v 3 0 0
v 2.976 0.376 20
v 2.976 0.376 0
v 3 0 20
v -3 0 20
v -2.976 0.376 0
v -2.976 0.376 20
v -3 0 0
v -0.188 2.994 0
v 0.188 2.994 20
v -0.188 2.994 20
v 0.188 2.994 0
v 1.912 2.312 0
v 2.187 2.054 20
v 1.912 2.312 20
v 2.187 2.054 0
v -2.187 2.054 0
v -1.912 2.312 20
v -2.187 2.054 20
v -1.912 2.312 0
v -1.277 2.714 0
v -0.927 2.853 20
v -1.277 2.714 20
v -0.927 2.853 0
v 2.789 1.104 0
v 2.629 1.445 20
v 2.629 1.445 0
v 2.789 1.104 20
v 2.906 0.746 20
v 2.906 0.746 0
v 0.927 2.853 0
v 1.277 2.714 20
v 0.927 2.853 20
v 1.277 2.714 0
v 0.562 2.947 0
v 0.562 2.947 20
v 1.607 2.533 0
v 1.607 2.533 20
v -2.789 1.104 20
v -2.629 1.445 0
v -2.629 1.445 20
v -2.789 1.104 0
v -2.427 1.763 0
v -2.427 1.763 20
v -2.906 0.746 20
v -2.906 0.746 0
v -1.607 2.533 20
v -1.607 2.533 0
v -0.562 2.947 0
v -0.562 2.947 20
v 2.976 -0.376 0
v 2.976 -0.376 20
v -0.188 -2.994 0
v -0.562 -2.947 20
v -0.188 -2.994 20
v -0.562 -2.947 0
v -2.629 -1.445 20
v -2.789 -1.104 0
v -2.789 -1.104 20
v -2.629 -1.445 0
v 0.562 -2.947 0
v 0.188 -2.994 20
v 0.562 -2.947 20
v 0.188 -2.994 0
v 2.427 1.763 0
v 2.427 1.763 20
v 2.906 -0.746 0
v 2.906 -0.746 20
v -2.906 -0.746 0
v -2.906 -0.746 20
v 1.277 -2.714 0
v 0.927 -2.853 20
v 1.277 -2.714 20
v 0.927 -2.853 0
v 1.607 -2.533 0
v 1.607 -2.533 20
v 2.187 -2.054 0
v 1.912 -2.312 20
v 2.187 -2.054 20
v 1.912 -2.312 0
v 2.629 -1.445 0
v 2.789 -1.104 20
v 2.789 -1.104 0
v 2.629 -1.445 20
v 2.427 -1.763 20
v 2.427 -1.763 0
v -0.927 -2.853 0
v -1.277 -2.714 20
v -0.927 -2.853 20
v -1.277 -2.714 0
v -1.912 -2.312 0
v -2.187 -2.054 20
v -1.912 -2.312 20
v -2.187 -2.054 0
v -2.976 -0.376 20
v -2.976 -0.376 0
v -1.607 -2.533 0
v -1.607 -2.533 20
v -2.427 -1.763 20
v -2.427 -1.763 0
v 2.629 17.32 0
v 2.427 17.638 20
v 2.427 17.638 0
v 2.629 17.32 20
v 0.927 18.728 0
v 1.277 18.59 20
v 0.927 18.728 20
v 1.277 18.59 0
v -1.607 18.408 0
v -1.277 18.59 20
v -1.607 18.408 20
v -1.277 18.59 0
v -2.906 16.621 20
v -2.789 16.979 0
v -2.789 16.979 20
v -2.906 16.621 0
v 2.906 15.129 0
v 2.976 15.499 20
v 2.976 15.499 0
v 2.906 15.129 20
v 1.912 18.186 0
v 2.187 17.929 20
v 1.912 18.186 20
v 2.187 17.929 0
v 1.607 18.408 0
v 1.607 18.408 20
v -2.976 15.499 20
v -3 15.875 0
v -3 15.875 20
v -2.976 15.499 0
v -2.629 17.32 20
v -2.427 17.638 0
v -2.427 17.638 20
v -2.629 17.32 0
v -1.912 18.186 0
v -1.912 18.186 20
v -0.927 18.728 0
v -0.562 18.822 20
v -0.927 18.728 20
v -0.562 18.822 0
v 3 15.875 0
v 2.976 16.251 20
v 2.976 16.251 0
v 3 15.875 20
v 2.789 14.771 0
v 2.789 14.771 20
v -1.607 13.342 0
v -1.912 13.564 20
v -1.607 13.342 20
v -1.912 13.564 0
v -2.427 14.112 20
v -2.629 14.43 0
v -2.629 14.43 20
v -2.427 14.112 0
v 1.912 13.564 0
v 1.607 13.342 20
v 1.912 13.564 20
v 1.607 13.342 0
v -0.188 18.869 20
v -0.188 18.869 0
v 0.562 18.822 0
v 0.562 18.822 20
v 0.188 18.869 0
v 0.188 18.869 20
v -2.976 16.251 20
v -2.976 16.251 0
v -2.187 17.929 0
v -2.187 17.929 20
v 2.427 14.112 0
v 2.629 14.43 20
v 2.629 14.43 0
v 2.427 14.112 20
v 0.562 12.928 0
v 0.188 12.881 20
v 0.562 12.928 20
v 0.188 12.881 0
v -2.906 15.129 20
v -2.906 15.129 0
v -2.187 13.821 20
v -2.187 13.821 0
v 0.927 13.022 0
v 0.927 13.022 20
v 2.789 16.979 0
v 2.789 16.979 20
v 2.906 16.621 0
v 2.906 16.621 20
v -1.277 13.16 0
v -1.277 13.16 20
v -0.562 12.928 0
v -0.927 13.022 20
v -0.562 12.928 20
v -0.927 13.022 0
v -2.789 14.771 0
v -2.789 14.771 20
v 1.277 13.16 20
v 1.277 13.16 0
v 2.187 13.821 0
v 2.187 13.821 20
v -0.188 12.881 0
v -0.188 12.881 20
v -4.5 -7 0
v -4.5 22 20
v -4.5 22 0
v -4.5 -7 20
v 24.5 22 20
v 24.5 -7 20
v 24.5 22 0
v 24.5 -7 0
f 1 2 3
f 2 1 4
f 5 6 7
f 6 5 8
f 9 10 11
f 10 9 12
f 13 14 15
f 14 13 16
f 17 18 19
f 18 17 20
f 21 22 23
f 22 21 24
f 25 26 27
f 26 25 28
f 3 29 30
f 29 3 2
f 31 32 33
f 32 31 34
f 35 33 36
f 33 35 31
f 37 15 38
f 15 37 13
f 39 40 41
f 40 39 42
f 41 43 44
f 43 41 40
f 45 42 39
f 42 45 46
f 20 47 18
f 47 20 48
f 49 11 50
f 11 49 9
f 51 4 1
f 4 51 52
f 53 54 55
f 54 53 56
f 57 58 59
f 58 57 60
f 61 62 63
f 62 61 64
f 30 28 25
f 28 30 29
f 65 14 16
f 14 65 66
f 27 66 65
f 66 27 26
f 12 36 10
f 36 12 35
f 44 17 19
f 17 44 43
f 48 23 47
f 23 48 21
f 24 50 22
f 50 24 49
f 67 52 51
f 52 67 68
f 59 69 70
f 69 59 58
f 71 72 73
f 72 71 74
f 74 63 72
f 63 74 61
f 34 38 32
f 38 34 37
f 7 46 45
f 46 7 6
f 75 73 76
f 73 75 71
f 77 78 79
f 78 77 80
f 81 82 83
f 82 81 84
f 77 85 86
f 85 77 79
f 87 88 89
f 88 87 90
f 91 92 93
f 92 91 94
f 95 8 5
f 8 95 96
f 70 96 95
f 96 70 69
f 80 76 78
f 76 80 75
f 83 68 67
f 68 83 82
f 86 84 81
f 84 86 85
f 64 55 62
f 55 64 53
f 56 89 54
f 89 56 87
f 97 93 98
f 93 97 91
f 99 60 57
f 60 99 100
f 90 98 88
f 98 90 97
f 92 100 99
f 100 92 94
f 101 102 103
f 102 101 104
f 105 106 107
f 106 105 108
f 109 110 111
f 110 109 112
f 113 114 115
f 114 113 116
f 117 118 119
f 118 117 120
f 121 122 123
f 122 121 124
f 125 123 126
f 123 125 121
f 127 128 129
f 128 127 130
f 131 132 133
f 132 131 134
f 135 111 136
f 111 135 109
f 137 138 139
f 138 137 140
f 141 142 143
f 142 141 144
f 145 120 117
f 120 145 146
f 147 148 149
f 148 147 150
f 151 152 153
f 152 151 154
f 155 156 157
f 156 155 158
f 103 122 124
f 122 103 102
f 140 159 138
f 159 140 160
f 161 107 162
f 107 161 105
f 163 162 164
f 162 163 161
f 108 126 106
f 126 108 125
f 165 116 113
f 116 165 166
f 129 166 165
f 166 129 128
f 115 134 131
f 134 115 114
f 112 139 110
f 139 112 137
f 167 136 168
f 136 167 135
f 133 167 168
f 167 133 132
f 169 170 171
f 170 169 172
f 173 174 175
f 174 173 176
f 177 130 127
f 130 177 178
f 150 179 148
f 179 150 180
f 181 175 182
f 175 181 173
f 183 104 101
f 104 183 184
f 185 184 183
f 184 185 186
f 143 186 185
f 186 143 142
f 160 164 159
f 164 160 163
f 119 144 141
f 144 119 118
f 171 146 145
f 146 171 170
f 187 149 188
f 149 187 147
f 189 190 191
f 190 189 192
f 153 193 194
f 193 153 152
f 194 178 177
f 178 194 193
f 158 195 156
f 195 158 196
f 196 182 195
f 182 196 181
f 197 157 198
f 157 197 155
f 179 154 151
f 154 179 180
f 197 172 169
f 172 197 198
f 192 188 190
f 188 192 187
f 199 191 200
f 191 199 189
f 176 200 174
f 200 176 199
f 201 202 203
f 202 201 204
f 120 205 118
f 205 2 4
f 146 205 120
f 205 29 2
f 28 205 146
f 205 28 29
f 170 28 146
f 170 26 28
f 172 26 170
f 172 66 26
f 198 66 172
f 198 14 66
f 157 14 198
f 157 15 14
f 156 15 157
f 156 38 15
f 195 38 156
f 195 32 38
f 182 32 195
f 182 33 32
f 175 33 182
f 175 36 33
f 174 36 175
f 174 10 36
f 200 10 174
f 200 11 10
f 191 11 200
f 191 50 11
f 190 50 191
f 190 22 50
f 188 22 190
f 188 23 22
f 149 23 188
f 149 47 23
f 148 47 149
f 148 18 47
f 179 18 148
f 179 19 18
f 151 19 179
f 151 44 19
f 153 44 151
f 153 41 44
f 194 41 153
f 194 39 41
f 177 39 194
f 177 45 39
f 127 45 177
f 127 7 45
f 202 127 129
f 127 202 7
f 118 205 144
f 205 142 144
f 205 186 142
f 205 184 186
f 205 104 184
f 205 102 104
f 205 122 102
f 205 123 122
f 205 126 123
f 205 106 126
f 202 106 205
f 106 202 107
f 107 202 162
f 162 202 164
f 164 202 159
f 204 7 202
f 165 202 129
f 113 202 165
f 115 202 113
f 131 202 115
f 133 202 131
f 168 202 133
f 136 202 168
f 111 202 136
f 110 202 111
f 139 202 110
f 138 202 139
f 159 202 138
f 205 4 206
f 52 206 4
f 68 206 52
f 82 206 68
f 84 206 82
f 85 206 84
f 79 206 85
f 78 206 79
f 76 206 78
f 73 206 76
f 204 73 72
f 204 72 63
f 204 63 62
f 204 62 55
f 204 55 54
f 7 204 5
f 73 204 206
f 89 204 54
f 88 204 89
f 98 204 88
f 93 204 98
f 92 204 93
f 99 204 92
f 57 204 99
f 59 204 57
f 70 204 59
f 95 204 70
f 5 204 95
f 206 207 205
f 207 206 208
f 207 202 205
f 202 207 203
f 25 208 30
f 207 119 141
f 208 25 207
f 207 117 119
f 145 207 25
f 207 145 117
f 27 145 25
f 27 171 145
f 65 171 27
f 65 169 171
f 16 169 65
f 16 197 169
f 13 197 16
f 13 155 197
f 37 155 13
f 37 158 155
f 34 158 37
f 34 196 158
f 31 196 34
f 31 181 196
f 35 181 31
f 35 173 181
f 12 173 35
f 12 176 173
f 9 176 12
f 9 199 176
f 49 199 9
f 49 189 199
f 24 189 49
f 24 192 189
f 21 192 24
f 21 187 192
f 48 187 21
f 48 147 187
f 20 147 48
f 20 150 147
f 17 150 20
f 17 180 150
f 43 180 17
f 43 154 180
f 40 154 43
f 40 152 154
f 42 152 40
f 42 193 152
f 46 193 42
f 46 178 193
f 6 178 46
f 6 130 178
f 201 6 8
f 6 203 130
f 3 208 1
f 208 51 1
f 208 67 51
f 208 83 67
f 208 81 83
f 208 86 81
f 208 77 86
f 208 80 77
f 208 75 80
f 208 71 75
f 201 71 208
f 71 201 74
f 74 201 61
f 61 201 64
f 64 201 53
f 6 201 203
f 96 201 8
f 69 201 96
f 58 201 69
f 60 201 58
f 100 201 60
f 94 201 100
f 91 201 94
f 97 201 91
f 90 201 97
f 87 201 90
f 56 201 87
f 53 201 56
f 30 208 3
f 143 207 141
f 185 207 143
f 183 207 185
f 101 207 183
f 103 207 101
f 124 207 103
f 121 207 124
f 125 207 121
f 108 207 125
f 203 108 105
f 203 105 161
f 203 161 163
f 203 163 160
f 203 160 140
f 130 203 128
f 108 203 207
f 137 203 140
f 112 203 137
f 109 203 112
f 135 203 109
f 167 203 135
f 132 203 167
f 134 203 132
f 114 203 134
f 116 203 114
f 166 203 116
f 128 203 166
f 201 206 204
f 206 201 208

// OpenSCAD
$fn = 50;


difference() {
	union() {
		translate(v = [-4.5000000000, -7.0000000000, 0]) {
			cube(size = [29, 29, 20]);
		}
	}
	union() {
		#translate(v = [0, 0, -50.0000000000]) {
			cylinder(h = 100, r = 3.0000000000);
		}
		#translate(v = [0, 15.8750000000, -50.0000000000]) {
			cylinder(h = 100, r = 3.0000000000);
		}
	}
}
